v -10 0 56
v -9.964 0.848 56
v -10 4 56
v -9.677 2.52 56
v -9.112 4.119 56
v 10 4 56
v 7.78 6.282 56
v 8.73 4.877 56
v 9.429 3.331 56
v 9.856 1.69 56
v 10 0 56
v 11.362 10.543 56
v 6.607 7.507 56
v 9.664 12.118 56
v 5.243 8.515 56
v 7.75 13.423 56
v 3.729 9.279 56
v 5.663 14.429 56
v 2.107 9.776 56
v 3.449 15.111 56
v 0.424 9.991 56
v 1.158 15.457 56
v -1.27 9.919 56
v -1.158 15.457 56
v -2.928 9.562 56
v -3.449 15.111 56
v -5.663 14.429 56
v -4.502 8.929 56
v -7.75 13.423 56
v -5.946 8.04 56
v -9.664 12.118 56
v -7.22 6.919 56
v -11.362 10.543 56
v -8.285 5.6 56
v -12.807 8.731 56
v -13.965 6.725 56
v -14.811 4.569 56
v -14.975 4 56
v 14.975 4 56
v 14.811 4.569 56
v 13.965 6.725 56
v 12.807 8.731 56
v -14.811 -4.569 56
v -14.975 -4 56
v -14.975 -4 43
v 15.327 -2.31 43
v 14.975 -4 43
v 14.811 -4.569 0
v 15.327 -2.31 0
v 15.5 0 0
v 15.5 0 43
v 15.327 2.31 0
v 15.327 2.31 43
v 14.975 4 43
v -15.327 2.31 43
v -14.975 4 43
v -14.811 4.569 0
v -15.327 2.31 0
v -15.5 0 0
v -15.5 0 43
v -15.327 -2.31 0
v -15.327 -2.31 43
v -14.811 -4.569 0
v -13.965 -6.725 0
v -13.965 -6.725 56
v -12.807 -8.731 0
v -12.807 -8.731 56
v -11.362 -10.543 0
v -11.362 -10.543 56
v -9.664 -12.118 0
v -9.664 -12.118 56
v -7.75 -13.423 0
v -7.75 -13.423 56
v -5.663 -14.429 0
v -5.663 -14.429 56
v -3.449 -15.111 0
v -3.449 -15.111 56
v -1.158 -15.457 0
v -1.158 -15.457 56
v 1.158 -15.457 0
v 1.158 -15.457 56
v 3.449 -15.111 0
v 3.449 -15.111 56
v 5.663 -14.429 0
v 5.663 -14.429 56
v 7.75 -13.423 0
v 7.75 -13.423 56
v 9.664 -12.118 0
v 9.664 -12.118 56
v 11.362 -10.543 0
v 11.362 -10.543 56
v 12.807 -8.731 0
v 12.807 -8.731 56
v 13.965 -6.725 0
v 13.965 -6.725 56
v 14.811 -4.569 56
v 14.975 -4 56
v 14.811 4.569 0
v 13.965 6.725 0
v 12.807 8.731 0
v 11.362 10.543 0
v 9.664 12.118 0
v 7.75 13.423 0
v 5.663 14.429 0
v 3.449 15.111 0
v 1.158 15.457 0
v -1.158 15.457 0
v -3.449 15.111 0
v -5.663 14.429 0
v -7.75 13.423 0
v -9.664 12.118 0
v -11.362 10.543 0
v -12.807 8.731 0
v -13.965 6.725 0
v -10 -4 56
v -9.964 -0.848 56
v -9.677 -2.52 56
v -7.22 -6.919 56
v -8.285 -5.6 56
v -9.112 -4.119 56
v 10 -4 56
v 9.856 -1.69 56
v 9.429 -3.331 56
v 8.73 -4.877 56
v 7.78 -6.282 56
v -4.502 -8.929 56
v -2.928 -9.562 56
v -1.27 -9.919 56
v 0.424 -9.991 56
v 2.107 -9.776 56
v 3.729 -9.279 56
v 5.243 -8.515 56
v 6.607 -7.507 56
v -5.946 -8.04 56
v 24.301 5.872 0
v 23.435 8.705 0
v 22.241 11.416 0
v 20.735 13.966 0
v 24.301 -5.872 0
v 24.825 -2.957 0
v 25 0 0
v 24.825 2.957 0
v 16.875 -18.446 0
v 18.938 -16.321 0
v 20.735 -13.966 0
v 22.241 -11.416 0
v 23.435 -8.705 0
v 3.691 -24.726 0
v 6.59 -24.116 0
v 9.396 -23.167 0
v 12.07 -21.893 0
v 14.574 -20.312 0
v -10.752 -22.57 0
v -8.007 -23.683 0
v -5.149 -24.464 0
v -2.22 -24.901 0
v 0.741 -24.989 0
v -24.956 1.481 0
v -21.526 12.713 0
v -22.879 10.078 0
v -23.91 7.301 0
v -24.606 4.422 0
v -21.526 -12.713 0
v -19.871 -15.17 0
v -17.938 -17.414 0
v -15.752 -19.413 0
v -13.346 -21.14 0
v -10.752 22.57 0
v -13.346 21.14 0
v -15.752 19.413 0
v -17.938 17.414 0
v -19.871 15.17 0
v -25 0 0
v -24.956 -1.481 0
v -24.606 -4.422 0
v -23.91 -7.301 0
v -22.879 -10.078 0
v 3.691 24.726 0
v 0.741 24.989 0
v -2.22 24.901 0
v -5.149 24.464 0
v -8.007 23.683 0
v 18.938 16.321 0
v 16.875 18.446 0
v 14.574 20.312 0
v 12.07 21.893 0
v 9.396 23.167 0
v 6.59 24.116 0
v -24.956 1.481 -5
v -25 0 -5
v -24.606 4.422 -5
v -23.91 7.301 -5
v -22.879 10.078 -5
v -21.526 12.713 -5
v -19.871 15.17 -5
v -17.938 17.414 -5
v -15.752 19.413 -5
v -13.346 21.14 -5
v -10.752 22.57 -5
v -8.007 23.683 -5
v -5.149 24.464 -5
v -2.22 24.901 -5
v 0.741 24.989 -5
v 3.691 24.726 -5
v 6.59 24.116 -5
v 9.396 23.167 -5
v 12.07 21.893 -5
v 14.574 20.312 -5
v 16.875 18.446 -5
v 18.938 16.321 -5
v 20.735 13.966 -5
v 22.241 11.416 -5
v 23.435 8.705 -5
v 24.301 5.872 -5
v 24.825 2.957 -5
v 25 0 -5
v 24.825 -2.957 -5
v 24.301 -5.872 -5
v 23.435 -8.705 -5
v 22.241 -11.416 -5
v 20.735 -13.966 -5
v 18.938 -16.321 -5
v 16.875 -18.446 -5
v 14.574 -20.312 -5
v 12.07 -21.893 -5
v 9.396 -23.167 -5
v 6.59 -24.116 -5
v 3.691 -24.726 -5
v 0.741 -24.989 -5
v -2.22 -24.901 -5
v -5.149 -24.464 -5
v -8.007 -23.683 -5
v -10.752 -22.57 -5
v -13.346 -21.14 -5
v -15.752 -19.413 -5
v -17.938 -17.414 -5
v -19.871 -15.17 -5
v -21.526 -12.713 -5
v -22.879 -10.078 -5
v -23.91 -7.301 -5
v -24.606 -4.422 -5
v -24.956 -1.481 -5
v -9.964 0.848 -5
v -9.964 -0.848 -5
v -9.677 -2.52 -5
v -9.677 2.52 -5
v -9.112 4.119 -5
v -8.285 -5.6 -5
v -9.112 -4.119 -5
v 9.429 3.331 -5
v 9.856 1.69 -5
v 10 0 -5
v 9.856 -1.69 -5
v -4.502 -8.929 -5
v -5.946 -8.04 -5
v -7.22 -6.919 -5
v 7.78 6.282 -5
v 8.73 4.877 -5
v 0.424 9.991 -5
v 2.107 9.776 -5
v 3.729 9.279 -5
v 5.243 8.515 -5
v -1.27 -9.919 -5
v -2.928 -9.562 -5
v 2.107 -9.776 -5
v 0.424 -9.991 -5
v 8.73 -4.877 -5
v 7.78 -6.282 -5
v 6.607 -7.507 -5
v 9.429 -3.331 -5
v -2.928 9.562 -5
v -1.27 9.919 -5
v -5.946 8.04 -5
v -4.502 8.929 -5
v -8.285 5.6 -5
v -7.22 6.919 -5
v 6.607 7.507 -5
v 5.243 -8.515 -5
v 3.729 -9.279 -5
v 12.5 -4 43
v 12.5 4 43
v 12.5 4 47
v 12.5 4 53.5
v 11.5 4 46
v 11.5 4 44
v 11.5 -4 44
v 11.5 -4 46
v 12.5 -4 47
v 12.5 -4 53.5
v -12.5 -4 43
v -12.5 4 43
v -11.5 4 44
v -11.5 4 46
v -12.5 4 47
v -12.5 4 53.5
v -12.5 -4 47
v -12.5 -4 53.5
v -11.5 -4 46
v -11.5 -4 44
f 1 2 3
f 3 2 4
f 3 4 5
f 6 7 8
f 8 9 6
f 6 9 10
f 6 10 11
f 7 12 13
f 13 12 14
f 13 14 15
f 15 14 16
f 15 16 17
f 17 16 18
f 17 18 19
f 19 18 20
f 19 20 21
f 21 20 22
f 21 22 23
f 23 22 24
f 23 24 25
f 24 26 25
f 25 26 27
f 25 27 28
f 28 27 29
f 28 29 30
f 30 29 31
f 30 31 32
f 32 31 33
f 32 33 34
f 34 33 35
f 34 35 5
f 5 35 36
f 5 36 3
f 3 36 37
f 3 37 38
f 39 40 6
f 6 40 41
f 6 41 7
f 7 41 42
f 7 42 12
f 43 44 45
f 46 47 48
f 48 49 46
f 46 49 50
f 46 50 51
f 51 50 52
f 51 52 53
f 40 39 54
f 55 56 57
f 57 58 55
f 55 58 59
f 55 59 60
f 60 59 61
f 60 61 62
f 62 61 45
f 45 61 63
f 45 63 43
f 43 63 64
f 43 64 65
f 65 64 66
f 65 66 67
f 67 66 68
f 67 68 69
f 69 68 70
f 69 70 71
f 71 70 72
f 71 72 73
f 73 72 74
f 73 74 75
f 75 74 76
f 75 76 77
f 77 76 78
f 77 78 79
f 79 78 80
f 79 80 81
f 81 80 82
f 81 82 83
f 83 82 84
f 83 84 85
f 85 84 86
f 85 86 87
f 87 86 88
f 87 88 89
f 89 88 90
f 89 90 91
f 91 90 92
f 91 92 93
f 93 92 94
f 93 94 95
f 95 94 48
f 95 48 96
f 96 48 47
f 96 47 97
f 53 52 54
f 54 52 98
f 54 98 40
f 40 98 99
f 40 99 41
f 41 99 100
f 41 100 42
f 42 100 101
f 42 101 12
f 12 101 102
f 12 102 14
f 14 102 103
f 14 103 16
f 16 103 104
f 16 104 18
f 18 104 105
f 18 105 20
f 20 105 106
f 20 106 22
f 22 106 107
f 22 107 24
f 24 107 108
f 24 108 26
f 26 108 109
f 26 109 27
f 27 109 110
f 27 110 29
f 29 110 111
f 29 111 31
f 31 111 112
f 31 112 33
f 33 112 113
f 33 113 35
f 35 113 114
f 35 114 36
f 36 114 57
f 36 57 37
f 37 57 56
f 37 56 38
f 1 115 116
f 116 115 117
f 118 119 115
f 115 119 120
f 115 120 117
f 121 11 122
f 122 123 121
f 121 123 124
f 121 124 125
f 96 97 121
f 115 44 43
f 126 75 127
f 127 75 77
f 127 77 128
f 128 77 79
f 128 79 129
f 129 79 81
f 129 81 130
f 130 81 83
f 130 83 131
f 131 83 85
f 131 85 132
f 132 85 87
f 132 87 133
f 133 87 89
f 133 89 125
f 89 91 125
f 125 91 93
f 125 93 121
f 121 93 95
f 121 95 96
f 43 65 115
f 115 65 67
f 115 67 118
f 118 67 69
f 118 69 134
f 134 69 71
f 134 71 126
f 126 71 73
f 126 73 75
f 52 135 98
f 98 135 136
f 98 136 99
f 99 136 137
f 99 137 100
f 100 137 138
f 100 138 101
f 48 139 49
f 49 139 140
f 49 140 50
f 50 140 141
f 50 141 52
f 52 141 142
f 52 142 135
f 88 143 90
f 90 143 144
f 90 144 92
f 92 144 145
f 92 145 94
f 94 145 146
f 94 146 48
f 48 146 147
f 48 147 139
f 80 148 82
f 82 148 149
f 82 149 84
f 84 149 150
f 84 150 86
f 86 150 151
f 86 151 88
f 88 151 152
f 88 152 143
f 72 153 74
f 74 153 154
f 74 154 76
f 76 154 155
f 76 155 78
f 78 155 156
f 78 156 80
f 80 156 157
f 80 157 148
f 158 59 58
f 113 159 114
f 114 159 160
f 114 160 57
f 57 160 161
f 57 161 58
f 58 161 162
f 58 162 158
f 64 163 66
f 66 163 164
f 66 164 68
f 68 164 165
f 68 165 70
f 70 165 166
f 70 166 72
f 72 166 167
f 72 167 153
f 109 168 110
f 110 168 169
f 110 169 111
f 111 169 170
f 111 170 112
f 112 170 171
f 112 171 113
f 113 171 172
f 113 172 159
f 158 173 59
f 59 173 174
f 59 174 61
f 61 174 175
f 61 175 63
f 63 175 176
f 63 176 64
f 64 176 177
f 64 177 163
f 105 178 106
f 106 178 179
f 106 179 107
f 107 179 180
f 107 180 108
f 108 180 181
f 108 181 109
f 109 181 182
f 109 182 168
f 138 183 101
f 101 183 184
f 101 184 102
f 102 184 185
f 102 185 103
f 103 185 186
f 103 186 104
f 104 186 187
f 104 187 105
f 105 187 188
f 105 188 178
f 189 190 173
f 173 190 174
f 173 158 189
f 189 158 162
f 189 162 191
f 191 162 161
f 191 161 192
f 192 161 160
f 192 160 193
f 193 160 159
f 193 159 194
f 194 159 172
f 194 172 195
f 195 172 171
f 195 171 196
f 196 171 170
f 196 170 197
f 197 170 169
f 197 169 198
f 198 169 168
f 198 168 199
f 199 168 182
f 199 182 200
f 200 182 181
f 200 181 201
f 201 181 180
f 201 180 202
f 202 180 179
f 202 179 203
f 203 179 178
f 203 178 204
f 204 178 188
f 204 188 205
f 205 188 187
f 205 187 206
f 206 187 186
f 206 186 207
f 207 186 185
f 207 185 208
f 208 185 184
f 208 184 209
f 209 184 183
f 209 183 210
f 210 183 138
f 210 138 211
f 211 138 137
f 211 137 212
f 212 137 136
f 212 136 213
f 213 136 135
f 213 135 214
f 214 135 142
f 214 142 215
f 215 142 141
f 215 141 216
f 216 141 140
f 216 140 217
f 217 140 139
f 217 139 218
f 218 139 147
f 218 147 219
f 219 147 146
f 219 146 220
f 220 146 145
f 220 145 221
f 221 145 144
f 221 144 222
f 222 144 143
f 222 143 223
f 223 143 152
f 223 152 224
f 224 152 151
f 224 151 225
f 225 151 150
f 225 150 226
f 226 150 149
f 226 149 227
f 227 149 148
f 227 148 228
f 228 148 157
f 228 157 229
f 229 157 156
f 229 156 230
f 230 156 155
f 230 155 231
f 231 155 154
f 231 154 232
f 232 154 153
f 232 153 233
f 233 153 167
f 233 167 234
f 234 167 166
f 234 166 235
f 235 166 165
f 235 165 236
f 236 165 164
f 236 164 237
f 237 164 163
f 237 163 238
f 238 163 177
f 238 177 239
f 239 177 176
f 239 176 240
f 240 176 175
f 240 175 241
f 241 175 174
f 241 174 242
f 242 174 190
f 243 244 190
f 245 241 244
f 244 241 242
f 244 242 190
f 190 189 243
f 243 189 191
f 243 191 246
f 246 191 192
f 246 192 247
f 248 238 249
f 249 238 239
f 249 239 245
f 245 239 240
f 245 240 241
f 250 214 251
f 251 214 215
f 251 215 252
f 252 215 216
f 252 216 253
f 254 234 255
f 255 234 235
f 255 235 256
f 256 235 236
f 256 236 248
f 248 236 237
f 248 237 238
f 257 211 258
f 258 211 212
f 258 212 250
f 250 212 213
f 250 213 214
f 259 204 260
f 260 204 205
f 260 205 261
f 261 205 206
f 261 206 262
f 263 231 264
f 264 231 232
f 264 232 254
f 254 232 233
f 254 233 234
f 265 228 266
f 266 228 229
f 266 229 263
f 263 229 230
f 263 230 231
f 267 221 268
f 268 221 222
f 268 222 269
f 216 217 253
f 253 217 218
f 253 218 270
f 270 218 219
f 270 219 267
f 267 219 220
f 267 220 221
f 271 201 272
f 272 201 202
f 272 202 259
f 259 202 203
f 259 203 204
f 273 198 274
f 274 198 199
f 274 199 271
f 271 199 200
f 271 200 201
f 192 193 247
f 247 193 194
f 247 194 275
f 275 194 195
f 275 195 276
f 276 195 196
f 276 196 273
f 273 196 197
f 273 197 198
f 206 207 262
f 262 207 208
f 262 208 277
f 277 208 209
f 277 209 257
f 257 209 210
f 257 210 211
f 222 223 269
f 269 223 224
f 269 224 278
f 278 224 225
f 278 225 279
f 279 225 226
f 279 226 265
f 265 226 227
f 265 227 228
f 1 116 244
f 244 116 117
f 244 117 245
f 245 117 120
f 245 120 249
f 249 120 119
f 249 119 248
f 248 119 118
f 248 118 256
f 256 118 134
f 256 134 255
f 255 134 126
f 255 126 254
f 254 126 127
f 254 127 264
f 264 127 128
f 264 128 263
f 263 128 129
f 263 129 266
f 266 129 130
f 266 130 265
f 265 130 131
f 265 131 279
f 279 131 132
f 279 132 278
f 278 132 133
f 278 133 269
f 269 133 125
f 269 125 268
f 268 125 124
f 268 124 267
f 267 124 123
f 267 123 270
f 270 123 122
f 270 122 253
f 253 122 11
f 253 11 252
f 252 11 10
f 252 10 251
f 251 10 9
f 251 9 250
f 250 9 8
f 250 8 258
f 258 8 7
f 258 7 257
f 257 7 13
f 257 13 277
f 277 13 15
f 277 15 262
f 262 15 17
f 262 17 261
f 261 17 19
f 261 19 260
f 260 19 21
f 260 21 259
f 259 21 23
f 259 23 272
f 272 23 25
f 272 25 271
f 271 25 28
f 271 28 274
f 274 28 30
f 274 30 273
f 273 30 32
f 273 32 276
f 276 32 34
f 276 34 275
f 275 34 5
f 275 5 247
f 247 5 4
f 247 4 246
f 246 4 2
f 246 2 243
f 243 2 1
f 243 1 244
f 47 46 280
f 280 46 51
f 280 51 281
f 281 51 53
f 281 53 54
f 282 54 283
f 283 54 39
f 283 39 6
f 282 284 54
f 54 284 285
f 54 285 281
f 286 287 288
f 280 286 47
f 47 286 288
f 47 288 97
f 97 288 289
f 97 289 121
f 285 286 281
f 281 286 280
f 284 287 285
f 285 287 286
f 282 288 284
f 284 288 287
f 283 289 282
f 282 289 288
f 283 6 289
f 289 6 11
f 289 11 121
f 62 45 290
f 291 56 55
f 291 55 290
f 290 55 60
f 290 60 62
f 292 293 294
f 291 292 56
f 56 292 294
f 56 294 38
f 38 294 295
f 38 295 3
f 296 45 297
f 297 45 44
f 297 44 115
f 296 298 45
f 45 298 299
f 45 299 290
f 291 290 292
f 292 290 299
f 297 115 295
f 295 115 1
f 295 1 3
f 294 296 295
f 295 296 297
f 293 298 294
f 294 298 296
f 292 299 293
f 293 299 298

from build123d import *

# Parameters (mm, degrees)
SKETCH1_R           = 15.5
BOSS_EXTRUDE1_DEPTH = 56
SKETCH4_R           = 25
BOSS_EXTRUDE2_DEPTH = 5
SKETCH5_R           = 10
CUT_EXTRUDE1_DEPTH  = 71.505318948
CUT_EXTRUDE2_DEPTH  = 4


with BuildPart() as part:
    # Sketch1 → Boss-Extrude1 (new body)
    with BuildSketch(Plane.XY):
        Circle(SKETCH1_R)
    extrude(amount=BOSS_EXTRUDE1_DEPTH)

    # Sketch4 → Boss-Extrude2 (add)
    with BuildSketch(Plane(origin=(0, 0, 0), x_dir=(-1, 0, 0), z_dir=(0, 0, -1))):
        Circle(SKETCH4_R)
    extrude(amount=BOSS_EXTRUDE2_DEPTH)

    # Sketch5 → Cut-Extrude1 (cut, through all)
    with BuildSketch(Plane.XY.offset(56)):
        Circle(SKETCH5_R)
    extrude(amount=-CUT_EXTRUDE1_DEPTH, mode=Mode.SUBTRACT)

    # Sketch6 → Cut-Extrude2 (cut, symmetric)
    with BuildSketch(Plane(origin=(0, 0, 0), x_dir=(1, 0, 0), z_dir=(0, 1, 0))):
        Polygon((12.5, -53.5), (10, -56), (15.5, -56), (15.5, -43), (12.5, -43), (11.5, -44), (11.5, -46), (12.5, -47), align=None)
    cut_extrude2 = extrude(amount=CUT_EXTRUDE2_DEPTH, both=True, mode=Mode.SUBTRACT)

    # Mirror1: Cut-Extrude2 across plane
    add(cut_extrude2.mirror(Plane(origin=(0, 0, 0), x_dir=(0, 0, 1), z_dir=(1, 0, 0))), mode=Mode.SUBTRACT)


solid = part.part
